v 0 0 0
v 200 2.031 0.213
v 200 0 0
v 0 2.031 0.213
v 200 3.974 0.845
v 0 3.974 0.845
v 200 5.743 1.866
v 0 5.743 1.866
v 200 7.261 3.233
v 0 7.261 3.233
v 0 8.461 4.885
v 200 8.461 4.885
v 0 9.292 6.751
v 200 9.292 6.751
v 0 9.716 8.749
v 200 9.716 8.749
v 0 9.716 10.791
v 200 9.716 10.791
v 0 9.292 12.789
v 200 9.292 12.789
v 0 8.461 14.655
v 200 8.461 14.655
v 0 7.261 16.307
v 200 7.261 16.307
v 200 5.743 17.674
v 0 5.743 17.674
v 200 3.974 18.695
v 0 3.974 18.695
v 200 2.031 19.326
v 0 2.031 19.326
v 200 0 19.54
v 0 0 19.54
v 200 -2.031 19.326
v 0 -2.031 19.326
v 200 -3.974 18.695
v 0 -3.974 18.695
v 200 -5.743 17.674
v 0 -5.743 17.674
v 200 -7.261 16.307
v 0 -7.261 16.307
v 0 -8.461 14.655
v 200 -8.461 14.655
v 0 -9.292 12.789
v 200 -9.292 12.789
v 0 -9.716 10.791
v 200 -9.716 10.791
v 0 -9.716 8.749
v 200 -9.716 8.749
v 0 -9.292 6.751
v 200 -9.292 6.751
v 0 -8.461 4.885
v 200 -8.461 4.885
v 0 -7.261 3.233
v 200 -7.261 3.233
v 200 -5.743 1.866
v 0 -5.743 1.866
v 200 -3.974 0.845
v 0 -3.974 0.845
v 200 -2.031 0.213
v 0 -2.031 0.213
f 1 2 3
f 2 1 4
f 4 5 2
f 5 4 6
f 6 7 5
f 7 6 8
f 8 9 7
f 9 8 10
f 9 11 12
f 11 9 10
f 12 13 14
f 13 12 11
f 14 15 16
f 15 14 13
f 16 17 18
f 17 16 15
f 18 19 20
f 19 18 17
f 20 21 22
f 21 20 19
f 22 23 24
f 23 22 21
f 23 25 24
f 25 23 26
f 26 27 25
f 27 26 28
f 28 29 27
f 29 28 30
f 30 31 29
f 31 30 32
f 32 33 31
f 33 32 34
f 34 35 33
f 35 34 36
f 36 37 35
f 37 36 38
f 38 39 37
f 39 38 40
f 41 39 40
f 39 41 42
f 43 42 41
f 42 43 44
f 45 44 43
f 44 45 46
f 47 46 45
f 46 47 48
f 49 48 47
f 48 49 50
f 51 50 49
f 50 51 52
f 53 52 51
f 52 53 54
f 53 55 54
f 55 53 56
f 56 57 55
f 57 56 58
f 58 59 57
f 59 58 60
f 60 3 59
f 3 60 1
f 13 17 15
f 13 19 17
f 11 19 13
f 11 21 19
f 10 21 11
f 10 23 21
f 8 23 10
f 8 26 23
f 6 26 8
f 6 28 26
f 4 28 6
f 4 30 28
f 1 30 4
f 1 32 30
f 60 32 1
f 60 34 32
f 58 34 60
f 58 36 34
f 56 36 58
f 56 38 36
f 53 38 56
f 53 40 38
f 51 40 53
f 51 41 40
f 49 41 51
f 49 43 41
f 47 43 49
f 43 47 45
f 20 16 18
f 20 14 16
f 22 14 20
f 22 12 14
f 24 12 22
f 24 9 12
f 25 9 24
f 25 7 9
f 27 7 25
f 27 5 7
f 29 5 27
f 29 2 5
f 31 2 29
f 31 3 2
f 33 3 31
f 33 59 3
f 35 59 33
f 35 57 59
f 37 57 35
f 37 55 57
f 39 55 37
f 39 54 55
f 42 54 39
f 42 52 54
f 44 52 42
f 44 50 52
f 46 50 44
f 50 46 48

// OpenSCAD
length = 200;
diameter = 19.54;

translate([ 0, 0, diameter / 2 ]) rotate([ 0, 90, 0 ]) cylinder(h = length, d = diameter);
